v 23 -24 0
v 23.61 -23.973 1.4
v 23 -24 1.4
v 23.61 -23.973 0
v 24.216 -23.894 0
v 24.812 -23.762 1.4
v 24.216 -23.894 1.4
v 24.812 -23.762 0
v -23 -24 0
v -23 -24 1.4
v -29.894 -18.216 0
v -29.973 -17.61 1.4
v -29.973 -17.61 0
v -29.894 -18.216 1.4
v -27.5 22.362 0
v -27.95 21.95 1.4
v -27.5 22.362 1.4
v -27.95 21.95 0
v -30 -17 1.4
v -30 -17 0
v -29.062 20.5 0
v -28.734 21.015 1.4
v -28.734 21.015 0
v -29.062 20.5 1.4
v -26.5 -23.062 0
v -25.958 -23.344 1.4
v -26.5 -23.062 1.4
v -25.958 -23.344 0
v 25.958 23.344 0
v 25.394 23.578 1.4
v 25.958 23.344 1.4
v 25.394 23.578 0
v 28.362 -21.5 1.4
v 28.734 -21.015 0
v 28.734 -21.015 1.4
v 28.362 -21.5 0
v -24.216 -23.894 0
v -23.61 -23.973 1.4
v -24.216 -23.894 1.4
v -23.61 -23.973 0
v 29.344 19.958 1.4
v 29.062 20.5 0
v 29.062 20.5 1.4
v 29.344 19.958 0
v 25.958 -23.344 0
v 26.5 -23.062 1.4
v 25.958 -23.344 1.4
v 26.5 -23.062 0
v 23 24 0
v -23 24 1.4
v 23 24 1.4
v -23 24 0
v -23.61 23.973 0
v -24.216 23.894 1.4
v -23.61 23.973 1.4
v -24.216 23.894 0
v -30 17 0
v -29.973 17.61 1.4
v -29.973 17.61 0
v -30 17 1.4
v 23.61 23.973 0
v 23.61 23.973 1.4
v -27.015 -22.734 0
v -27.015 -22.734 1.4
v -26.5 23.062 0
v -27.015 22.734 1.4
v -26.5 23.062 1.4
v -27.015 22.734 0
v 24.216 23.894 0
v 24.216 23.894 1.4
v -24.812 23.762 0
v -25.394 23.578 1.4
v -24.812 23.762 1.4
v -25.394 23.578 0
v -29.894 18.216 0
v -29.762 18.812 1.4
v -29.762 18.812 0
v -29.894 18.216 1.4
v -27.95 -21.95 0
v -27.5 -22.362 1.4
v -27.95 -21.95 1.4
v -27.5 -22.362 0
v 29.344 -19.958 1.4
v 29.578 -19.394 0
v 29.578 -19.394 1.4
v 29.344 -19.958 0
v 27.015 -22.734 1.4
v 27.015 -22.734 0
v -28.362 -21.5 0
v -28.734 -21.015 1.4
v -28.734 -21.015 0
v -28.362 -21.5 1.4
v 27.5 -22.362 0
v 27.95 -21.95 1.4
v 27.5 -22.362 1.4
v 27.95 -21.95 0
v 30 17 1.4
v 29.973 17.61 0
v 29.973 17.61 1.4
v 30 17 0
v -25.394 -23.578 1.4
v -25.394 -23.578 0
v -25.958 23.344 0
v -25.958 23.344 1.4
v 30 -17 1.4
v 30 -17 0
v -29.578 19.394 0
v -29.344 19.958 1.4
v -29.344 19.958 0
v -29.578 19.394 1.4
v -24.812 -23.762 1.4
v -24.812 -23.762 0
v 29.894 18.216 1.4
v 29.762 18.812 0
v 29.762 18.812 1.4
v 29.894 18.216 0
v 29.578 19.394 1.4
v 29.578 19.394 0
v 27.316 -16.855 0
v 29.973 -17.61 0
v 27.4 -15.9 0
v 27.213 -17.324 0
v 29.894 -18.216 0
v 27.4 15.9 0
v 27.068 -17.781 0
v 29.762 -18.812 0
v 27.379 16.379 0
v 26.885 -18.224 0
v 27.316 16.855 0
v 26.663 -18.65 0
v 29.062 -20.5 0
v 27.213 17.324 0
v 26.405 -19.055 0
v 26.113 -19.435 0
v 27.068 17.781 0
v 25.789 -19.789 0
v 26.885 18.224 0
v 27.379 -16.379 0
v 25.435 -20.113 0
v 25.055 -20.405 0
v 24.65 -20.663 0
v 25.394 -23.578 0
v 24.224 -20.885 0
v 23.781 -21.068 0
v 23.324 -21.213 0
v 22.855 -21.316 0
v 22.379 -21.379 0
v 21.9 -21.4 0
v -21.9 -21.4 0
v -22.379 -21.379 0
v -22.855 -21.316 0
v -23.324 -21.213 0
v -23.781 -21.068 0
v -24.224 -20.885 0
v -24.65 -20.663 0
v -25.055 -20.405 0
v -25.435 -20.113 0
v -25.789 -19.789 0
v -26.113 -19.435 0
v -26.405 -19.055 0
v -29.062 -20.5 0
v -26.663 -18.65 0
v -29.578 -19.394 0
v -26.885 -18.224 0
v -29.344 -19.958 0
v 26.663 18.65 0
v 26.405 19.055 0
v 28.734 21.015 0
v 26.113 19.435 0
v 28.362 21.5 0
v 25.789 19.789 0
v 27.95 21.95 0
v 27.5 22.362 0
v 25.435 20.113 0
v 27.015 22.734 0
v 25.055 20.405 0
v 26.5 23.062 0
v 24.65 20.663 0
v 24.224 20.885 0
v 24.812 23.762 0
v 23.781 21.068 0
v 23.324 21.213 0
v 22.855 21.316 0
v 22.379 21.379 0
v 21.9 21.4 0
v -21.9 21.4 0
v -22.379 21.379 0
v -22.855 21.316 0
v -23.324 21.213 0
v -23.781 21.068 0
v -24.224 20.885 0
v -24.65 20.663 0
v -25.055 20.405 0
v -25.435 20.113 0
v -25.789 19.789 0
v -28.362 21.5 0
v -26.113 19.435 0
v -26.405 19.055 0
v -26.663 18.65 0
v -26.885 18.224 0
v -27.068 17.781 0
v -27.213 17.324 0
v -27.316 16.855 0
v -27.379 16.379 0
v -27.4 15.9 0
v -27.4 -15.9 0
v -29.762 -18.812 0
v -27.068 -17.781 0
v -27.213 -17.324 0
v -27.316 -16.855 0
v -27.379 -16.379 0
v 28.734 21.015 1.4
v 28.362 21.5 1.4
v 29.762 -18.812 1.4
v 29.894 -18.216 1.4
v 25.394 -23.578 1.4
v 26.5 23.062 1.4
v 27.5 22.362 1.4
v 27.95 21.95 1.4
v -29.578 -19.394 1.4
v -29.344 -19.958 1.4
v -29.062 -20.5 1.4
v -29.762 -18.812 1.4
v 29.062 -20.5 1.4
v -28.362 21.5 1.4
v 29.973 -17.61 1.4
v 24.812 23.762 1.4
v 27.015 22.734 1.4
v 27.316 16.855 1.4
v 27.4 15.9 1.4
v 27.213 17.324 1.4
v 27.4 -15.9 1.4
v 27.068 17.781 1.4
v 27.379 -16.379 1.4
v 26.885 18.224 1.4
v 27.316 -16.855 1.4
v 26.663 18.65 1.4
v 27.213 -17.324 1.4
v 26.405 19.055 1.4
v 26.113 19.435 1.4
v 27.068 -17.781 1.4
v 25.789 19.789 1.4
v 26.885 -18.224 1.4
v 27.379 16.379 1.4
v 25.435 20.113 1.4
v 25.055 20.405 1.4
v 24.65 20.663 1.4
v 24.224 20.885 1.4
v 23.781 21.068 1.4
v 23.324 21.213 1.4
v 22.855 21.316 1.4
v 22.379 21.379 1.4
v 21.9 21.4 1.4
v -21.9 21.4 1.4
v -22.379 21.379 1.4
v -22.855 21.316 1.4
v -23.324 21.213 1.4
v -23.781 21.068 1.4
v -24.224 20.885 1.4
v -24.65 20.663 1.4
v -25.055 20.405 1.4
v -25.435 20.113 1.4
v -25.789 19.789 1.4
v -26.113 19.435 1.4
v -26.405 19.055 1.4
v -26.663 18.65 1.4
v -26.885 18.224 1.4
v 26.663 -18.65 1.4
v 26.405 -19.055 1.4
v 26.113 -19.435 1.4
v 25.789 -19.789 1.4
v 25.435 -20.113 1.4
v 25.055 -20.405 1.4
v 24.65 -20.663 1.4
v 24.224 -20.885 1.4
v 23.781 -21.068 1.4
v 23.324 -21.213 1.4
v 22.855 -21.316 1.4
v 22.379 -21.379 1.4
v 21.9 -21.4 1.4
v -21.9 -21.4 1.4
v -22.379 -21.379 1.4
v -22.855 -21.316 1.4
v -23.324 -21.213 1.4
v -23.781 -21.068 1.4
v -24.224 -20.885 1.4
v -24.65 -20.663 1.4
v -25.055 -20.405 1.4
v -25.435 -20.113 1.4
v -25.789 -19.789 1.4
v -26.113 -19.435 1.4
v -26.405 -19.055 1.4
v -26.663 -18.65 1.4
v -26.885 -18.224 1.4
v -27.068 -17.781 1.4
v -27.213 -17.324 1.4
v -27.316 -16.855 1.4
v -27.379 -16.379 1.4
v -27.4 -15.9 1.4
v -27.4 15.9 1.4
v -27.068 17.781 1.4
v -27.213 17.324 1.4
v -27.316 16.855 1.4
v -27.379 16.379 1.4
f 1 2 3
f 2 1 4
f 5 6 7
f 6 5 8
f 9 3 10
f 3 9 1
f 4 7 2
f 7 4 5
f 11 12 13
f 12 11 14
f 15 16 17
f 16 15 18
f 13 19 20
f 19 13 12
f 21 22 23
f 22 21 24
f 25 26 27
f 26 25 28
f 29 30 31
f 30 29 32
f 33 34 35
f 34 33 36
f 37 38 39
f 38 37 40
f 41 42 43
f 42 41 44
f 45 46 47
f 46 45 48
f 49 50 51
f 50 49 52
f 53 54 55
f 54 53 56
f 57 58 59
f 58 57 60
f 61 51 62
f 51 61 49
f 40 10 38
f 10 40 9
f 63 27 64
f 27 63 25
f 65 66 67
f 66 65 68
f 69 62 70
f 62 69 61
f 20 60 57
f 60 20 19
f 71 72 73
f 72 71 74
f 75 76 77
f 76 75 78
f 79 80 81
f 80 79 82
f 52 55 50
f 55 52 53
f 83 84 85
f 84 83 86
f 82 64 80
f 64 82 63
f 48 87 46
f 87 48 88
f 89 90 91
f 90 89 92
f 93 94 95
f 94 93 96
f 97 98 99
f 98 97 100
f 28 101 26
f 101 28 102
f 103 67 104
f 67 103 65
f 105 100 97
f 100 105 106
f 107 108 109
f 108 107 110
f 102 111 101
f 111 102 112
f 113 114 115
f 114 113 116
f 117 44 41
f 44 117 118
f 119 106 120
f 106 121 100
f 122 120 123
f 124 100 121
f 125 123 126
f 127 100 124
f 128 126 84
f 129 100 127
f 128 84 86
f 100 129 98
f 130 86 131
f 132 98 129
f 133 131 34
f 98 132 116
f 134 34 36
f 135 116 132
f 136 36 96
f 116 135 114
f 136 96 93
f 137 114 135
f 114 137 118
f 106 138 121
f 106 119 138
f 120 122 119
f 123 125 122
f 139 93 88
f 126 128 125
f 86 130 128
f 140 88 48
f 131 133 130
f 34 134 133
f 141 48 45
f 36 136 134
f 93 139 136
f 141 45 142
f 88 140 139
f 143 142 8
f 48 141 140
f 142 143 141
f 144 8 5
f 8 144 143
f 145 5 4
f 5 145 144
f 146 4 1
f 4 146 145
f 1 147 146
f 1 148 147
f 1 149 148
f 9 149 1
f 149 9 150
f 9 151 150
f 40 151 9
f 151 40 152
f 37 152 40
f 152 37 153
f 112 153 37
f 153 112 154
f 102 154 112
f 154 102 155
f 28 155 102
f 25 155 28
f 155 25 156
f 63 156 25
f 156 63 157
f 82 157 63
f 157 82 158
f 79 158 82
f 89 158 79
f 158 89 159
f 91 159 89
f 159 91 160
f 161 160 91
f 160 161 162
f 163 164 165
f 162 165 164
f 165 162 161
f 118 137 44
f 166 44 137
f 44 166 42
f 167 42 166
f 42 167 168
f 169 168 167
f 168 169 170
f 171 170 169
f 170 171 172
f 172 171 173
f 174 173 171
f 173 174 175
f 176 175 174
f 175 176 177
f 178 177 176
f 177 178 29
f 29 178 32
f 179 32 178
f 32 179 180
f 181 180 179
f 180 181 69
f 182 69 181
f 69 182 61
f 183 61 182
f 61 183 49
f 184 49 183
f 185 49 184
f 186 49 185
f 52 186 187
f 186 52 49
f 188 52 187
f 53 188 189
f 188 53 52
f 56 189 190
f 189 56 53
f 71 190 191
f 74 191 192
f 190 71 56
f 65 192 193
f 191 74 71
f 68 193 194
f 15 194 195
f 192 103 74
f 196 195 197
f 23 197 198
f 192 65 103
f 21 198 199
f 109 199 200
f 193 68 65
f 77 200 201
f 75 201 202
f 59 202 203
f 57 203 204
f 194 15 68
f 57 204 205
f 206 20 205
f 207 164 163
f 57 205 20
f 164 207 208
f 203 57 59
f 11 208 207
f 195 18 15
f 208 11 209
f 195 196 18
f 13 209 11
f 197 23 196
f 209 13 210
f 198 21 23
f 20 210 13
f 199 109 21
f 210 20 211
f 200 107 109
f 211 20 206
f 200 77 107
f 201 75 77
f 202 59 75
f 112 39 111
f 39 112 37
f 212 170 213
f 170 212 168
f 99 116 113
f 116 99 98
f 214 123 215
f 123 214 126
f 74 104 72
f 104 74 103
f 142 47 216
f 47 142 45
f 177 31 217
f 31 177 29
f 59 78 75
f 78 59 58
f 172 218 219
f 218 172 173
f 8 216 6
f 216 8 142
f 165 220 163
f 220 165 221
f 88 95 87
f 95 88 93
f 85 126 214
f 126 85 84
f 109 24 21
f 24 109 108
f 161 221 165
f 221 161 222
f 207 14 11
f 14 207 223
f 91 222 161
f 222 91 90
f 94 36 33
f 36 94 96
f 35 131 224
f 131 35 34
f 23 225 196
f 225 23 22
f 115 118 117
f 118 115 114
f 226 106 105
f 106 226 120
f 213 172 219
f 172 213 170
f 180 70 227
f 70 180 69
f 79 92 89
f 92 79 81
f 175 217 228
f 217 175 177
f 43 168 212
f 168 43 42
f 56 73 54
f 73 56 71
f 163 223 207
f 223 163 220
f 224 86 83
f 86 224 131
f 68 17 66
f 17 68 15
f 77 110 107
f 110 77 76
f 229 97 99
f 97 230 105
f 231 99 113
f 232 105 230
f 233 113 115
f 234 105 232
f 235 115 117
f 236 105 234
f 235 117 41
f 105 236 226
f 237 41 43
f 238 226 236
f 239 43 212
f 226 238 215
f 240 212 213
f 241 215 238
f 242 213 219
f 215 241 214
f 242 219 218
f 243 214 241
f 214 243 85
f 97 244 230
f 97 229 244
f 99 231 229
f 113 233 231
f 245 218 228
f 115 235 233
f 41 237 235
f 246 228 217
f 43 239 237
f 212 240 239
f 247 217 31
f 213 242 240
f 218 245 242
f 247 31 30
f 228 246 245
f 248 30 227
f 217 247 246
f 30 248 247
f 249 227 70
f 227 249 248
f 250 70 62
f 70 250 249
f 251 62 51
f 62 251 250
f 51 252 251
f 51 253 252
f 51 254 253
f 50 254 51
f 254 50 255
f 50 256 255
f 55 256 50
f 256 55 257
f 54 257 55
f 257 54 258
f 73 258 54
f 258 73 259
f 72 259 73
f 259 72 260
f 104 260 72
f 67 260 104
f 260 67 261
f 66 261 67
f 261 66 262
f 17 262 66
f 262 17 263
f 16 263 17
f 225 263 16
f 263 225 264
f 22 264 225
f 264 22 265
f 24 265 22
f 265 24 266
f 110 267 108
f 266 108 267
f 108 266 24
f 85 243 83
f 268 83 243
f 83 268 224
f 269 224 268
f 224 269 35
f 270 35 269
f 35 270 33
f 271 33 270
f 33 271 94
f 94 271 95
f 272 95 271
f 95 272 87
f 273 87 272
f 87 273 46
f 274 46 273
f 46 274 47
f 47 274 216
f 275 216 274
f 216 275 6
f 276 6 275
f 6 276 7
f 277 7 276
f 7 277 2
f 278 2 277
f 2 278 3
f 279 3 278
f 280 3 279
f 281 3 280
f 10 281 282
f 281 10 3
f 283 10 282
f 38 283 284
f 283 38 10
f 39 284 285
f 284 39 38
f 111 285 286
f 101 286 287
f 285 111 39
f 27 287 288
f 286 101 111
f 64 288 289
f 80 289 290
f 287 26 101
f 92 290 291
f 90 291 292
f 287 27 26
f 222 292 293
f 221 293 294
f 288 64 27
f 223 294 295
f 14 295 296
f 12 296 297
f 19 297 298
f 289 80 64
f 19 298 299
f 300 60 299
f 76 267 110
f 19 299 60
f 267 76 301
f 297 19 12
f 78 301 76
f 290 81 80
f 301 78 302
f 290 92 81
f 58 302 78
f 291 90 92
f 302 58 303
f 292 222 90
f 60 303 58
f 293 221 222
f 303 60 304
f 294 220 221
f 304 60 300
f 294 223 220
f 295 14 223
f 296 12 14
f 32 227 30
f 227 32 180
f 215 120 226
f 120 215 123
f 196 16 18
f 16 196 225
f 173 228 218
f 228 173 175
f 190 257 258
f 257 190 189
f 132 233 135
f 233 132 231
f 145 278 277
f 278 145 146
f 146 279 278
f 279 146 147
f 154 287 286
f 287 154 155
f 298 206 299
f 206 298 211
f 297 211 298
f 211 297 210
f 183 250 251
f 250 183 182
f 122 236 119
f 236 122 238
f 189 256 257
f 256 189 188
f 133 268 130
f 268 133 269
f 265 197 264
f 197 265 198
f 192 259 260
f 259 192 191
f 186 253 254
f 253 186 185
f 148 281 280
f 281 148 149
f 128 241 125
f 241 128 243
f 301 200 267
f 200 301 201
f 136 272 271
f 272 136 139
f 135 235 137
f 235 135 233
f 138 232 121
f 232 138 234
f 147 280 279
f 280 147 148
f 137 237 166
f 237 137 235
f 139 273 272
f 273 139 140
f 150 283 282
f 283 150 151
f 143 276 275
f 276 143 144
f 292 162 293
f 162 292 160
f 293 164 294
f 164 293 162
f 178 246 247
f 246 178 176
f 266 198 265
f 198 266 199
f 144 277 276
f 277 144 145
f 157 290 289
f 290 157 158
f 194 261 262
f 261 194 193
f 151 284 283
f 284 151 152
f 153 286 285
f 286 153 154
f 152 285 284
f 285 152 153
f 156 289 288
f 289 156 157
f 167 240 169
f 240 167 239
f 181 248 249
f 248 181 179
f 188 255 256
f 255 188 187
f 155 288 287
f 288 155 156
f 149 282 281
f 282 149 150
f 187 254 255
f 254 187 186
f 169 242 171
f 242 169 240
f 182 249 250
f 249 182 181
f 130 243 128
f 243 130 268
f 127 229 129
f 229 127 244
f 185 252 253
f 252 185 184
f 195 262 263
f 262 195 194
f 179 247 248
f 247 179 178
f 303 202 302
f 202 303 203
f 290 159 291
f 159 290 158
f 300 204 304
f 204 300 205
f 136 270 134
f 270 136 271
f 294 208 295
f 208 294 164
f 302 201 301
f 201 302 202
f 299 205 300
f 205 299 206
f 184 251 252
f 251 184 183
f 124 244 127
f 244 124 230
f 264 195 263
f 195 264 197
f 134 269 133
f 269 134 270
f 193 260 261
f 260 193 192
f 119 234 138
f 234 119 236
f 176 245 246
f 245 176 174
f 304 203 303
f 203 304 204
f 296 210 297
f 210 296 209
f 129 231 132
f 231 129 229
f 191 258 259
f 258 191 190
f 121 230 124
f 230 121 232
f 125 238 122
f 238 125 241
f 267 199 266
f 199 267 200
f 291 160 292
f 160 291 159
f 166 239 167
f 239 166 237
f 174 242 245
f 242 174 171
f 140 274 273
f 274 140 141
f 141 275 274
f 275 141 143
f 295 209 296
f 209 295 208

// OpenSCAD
// file: woli_config.scad
// ============================================================
// WOLI V1.1 AUDITED FINAL — MASTER PARAMETERS
// Units: mm
// ============================================================

$fn = 72;

// ---------- GLOBAL ----------
fit_clearance = 0.40;
wall = 3.0;
floor_t = 5.0;
cover_t = 2.8;
shell_r = 10.0;

m3_clear = 3.4;
m3_pilot_d = 2.8;
m3_pilot_depth = 4.2;

tie_slot_w = 3.8;
tie_slot_l = 18;

// ---------- BODY ----------
body_w = 170;
body_l = 90;
chassis_h = 31;
top_h = 34;

top_upper_w = 162;
top_upper_l = 80;
top_upper_r = 9;

// ---------- N20 DRIVE ----------
wheel_d = 43;
wheel_w = 17.5;

n20_x = 12;
n20_y = 33;
n20_z = 10;

n20_bracket_x = 25;
n20_bracket_y = 8.5;
n20_bracket_z = 11.5;
n20_bracket_hole_cc = 17;      // approx; slots absorb error

wheel_axis_ground_z = wheel_d/2; // reference only; actual chassis ground plane requires hardware check
wheel_opening_l = 25;            // side wheel cutout depth (Y), mm
motor_y = -body_l/2 + body_l/3;  // wheel center: 1/3 body depth in from front (-Y)
motor_slot_len = 8;
motor_bracket_zone_x = body_w/2 - 18;

// ---------- BALL CASTER ----------
caster_w = 22;
caster_l = 17;
caster_h = 15;
caster_ball_d_visual_ref = 11.5; // photo-only reference; not used for fit
caster_dock_y = body_l/2 - 21;

caster_body_clear = 0.7;
caster_retainer_t = 3.0;
caster_retainer_screw_cc = 27;

caster_mount_x = 15;
caster_mount_y = 12;
caster_floor_open = 18.5;

// ---------- MAIN PCB ----------
pcb_w = 50;
pcb_l = 70;
pcb_stack_h = 15;

pcb_tray_w = 56;
pcb_tray_l = 76;
pcb_mount_cc_x = 44;
pcb_mount_cc_y = 64;

// ---------- MG90S ----------
servo_a = 32.4;
servo_b = 32.5;
servo_c = 12;
servo_fit = 0.7;

// ---------- LIMIT SWITCH ----------
limit_w = 21;
limit_l = 23;
limit_h = 6;

// ---------- VL53L0X ----------
tof_w = 10.7;
tof_l = 25;
tof_h = 11.5;
tof_rail_clear = 0.7;

tof_bezel_w = 34;
tof_bezel_h = 19;

// ---------- PHONE HOLDER / NECK ----------
phone_ball_d = 18.0;            // physical socket fit still required
neck_h = 30;
neck_base_w = 54;
neck_base_l = 42;
neck_base_h = 5;
neck_hole_x = 38;
neck_hole_y = 26;

neck_recess_w = 62;
neck_recess_l = 50;
neck_recess_d = 1.2;

neck_pilot_d = 2.8;
neck_pilot_depth = 7.0;

// reference phone clearance envelope only
phone_ref_w = 165;
phone_ref_h = 82;
phone_ref_t = 12;

// ---------- KLIFE PD-Q2 BATTERY ----------
battery_w = 68;
battery_l = 143;
battery_h = 11;
battery_mass_g = 205;

battery_fit_clear = 0.8;
battery_tray_w = 84;
battery_tray_l = 146;
battery_tray_t = 2.4;
battery_rail_t = 2.5;
battery_rail_h = 5.5;
battery_center_y = -18;

battery_tray_mount_x = 39;
battery_tray_mount_y = 55;

// ---------- UPPER ELECTRONICS DECK ----------
bridge_w = 122;
bridge_l = 94;
bridge_t = 3.0;
bridge_leg_h = 20;
bridge_leg_x = 56;
bridge_leg_y = 36;

module_boss_h = 4.5;
module_boss_d = 8.0;
module_pilot_d = 2.8;

pcb_deck_cx = -25;
pcb_deck_cy = 0;

tb_deck_cx = 34;
tb_deck_cy = 17;

usbc_deck_cx = 36;
usbc_deck_cy = -24;

// ---------- TB6612FNG HW-166 ----------
tb6612_w = 26;
tb6612_l = 26;
tb6612_clear = 0.6;

// total installed height is intentionally not hard-coded

// ---------- USB-C BREAKOUT ----------
usbc_board_w = 12;
usbc_board_l = 15;
usbc_connector_h = 4.2;
usbc_clear = 0.6;

// ---------- TOP COVER INTERFACE ----------
cover_skirt_depth = 4.0;
cover_skirt_clear = 0.8;
cover_skirt_t = 2.5;

cover_side_screw_y = 55 * body_l / 190;
cover_side_screw_z = -2.5;

rear_service_w = 42;
rear_service_h = 14;
rear_hatch_screw_x = 19;
rear_hatch_center_z = 10;

// ---------- CABLE MANAGEMENT ----------
cable_bridge_w = 24;
cable_bridge_l = 14;
cable_bridge_h = 8;
cable_bridge_channel = 8;

// ---------- SERVO LOCK FRAMEWORK ----------
lock_angle_deg = 90;
unlock_angle_deg = 10;

lock_plate_d = 28;
lock_arm_w = 10;
lock_arm_t = 4.0;
lock_reach = 22;
lock_tip_d = 10;

horn_center_clear_d = 7.0;
horn_slot_d = 2.4;              // physical stock-horn check required
horn_slot_len = 8.0;
horn_slot_radius = 8.0;

lock_pad_t = 2.0;
lock_pad_d = 11.0;
// file: woli_lib.scad
include <woli_config.scad>;

module rr2d(w,l,r){
    offset(r=r) square([w-2*r,l-2*r], center=true);
}

module rplate(w,l,h,r){
    linear_extrude(height=h) rr2d(w,l,r);
}

module rshell(w,l,h,r,t,bottom){
    difference(){
        rplate(w,l,h,r);
        translate([0,0,bottom])
            rplate(w-2*t,l-2*t,h,r-t);
    }
}

module slot2d(len,d){
    hull(){
        translate([-len/2,0]) circle(d=d);
        translate([ len/2,0]) circle(d=d);
    }
}

module slot3d(len,d,h){
    linear_extrude(height=h) slot2d(len,d);
}

module tie_slot(h=5){
    rplate(tie_slot_w,tie_slot_l,h,1.2);
}

module body_screw_pattern(h=20){
    for(x=[-screw_x,screw_x])
        for(y=[-screw_y,screw_y])
            translate([x,y,-1])
                cylinder(h=h,d=m3_clear);
}

module body_bosses(h=20){
    for(x=[-screw_x,screw_x])
        for(y=[-screw_y,screw_y])
            translate([x,y,0])
                cylinder(h=h,d=m3_boss_d);
}


// Closed-top shell for removable upper cover.
// Leaves the underside open and preserves a roof thickness.
module top_shell(w,l,h,r,t){
    difference(){
        rplate(w,l,h,r);
        translate([0,0,-0.1])
            rplate(w-2*t,l-2*t,h-t+0.1,r-t);
    }
}


// Tapered rounded solid built from two rounded plates.
// Useful for product-like enclosure shoulders.
module tapered_rounded_solid(w0,l0,w1,l1,h,r0,r1){
    hull(){
        rplate(w0,l0,0.8,r0);
        translate([0,0,h-0.8])
            rplate(w1,l1,0.8,r1);
    }
}

// Open-bottom tapered cover with closed roof.
module tapered_top_shell(w0,l0,w1,l1,h,r0,r1,t){
    difference(){
        tapered_rounded_solid(w0,l0,w1,l1,h,r0,r1);
        translate([0,0,-0.1])
            tapered_rounded_solid(
                w0-2*t,l0-2*t,
                w1-2*t,l1-2*t,
                h-t+0.1,
                max(r0-t,1),max(r1-t,1)
            );
    }
}
// main file
include <woli_lib.scad>;

// ============================================================
// 18 NECK LANDING TRIM V0.4
// Optional thin trim around neck base.
// It hides the seam between Neck and Top Cover.
// ============================================================

trim_t=1.4;
outer_w=60;
outer_l=48;
inner_w=neck_base_w+0.8;
inner_l=neck_base_l+0.8;

difference(){
    rplate(outer_w,outer_l,trim_t,7);
    translate([0,0,-0.1])
        rplate(inner_w,inner_l,trim_t+0.3,5.5);

    for(x=[-neck_hole_x/2,neck_hole_x/2])
        for(y=[-neck_hole_y/2,neck_hole_y/2])
            translate([x,y,-0.1])
                cylinder(h=trim_t+0.3,d=m3_clear);
}
